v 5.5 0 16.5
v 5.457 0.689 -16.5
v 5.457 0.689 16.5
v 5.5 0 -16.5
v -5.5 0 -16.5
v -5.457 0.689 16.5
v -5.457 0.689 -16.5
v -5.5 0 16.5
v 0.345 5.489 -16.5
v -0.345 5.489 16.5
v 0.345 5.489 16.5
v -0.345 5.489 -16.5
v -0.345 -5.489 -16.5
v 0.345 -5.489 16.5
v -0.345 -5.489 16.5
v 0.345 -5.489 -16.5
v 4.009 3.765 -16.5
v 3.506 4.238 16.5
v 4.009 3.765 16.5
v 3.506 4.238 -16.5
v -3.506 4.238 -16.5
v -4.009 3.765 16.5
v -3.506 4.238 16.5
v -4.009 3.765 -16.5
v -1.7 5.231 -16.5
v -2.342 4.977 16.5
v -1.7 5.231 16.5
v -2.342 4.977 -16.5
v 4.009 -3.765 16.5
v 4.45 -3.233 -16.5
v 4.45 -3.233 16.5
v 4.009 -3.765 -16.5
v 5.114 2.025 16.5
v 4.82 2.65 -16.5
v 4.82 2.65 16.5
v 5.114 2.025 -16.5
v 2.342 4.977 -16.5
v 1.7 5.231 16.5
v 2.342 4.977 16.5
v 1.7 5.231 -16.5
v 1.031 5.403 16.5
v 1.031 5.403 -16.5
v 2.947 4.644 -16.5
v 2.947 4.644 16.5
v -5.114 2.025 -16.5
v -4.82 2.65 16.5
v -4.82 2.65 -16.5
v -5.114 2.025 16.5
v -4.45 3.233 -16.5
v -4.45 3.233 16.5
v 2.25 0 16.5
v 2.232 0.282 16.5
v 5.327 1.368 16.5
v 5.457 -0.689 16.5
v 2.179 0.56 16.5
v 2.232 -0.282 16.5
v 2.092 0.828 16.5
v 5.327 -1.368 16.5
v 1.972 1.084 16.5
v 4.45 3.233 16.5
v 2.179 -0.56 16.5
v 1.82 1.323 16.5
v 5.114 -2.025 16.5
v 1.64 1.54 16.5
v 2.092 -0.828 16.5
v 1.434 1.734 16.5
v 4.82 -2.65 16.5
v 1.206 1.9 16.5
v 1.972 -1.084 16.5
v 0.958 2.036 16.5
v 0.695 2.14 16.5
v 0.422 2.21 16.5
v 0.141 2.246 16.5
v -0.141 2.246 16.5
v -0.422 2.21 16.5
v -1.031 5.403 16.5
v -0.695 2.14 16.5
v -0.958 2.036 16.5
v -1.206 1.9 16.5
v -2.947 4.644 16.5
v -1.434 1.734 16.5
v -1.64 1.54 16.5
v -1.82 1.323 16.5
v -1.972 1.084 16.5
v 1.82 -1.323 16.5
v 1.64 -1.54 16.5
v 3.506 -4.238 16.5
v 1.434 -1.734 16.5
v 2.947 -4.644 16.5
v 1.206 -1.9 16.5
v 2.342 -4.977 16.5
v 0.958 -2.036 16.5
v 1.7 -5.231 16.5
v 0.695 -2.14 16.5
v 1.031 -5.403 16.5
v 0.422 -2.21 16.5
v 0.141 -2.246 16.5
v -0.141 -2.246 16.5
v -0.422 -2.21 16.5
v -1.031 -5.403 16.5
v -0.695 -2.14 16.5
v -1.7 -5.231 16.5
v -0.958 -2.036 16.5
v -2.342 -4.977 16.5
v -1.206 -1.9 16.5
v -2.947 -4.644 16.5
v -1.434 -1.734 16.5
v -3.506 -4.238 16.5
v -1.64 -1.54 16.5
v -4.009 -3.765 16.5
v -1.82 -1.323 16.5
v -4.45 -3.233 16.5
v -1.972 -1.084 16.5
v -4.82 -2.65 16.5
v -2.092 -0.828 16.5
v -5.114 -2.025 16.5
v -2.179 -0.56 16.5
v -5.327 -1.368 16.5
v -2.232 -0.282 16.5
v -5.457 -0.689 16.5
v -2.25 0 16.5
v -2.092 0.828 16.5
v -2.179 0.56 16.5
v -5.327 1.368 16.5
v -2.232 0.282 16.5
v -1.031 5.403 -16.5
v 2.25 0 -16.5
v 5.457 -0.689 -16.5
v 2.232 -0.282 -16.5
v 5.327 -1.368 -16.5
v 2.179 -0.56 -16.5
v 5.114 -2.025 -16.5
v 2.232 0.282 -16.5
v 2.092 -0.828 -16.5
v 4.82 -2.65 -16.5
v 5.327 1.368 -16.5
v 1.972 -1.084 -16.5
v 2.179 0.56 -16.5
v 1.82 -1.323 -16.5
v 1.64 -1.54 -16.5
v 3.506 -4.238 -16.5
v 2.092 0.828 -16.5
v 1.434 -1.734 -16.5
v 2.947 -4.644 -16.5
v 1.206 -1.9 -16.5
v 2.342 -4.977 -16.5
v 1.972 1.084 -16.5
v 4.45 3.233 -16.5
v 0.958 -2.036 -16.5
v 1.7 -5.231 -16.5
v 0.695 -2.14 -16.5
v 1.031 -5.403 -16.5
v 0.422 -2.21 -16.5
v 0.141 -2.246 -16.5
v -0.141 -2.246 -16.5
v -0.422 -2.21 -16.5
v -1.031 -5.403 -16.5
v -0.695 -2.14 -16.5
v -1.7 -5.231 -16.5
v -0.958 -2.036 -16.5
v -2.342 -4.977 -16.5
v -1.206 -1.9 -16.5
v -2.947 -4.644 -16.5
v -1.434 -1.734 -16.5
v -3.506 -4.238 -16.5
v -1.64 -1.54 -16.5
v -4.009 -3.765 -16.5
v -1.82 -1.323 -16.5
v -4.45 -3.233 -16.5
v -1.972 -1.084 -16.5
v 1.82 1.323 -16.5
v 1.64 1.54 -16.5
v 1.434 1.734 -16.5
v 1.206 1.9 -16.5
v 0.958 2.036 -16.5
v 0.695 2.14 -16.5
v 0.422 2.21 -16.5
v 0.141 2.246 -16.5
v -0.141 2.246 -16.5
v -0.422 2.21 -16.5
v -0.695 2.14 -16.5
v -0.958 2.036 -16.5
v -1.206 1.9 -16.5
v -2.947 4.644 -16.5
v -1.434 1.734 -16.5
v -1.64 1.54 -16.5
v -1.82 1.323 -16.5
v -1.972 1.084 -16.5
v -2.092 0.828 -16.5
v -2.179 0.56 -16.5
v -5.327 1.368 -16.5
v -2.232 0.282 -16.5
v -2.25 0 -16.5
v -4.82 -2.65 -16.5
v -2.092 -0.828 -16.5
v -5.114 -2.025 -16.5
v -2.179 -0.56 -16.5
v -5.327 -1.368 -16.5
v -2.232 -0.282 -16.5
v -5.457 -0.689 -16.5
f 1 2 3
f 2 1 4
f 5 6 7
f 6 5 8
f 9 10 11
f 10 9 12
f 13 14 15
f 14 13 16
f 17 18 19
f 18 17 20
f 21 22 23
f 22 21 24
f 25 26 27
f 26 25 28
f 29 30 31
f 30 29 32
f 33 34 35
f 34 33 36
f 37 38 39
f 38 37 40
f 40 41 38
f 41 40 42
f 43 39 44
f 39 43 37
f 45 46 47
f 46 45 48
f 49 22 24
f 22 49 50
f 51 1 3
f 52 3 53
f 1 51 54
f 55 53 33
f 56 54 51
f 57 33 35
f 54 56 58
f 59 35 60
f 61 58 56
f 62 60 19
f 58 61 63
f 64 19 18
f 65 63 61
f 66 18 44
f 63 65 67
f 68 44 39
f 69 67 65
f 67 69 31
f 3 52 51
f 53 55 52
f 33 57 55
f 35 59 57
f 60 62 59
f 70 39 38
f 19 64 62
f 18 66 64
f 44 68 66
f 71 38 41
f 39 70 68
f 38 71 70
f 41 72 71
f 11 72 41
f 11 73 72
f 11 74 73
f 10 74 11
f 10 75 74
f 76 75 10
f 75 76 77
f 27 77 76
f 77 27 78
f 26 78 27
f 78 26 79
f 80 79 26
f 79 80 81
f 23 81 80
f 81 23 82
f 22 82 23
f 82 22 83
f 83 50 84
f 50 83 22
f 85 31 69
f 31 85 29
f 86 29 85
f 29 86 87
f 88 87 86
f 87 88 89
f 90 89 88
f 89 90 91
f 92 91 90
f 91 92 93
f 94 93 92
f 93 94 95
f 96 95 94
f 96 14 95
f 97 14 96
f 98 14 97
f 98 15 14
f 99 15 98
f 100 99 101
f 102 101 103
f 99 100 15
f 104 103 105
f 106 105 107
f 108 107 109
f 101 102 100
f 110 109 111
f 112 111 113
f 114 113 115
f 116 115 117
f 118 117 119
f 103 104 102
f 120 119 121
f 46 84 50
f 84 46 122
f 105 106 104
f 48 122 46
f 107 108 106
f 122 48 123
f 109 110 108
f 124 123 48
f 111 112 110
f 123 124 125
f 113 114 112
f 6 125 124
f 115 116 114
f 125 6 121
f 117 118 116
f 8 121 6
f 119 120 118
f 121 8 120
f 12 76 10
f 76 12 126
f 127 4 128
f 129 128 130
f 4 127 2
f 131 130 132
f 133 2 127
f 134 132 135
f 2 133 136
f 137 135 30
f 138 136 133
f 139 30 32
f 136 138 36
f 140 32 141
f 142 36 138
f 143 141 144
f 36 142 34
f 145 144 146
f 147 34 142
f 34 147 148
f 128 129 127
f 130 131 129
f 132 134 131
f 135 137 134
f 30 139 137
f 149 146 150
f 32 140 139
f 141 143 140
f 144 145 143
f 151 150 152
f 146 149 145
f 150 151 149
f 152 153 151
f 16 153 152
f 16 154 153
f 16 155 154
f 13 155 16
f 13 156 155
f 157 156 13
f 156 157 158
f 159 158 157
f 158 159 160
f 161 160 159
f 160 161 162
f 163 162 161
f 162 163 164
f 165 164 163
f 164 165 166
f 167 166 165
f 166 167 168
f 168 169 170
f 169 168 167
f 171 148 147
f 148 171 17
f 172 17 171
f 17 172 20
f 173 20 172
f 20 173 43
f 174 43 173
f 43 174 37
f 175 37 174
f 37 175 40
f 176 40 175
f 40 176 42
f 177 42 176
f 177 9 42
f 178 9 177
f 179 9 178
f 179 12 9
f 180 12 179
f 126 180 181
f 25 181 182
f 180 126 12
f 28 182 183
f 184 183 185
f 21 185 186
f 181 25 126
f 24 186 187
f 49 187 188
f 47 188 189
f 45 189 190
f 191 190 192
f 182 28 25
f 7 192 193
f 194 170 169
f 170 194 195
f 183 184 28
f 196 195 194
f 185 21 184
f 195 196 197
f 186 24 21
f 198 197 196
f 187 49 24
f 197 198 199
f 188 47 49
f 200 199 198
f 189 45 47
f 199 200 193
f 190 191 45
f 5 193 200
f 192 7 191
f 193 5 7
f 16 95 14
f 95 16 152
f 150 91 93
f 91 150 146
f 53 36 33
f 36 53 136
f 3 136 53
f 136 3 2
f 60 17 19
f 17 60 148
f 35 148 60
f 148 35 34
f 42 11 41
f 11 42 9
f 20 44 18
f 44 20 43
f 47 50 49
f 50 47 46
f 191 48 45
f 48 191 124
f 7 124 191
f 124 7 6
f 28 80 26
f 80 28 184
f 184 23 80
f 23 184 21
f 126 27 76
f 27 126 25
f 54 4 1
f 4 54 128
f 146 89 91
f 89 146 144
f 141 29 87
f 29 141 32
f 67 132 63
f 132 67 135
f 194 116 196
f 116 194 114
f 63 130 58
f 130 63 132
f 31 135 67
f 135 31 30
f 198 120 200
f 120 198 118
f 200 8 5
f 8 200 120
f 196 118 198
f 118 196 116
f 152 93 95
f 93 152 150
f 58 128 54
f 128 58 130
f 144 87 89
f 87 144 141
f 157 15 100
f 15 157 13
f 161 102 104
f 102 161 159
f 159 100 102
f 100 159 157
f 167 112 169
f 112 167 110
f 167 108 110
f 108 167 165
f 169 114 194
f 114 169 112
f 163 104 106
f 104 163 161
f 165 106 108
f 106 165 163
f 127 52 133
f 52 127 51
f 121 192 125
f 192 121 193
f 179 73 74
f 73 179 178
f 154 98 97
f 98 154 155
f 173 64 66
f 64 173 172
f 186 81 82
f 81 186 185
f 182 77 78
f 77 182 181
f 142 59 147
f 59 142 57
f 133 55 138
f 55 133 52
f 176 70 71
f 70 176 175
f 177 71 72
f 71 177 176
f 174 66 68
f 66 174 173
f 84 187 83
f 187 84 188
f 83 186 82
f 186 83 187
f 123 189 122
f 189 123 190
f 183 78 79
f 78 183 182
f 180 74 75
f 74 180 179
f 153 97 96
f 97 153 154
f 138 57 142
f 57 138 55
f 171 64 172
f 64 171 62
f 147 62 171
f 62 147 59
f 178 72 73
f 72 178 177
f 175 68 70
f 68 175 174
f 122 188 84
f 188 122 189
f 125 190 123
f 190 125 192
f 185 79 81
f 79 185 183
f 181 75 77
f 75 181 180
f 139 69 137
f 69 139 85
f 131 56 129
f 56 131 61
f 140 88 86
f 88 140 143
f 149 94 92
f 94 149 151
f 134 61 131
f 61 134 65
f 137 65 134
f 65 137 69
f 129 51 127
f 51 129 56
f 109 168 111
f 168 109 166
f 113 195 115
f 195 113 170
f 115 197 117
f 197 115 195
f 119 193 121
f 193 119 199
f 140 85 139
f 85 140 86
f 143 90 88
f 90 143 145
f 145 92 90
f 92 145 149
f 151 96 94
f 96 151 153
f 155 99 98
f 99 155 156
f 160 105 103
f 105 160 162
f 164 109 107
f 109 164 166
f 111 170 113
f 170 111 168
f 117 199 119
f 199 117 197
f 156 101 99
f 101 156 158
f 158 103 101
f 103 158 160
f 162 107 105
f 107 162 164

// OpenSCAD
$fn = 50;


difference() {
	union() {
		translate(v = [0, 0, -16.5000000000]) {
			cylinder(h = 33, r = 5.5000000000);
		}
	}
	union() {
		translate(v = [0, 0, -100.0000000000]) {
			cylinder(h = 200, r = 2.2500000000);
		}
	}
}
